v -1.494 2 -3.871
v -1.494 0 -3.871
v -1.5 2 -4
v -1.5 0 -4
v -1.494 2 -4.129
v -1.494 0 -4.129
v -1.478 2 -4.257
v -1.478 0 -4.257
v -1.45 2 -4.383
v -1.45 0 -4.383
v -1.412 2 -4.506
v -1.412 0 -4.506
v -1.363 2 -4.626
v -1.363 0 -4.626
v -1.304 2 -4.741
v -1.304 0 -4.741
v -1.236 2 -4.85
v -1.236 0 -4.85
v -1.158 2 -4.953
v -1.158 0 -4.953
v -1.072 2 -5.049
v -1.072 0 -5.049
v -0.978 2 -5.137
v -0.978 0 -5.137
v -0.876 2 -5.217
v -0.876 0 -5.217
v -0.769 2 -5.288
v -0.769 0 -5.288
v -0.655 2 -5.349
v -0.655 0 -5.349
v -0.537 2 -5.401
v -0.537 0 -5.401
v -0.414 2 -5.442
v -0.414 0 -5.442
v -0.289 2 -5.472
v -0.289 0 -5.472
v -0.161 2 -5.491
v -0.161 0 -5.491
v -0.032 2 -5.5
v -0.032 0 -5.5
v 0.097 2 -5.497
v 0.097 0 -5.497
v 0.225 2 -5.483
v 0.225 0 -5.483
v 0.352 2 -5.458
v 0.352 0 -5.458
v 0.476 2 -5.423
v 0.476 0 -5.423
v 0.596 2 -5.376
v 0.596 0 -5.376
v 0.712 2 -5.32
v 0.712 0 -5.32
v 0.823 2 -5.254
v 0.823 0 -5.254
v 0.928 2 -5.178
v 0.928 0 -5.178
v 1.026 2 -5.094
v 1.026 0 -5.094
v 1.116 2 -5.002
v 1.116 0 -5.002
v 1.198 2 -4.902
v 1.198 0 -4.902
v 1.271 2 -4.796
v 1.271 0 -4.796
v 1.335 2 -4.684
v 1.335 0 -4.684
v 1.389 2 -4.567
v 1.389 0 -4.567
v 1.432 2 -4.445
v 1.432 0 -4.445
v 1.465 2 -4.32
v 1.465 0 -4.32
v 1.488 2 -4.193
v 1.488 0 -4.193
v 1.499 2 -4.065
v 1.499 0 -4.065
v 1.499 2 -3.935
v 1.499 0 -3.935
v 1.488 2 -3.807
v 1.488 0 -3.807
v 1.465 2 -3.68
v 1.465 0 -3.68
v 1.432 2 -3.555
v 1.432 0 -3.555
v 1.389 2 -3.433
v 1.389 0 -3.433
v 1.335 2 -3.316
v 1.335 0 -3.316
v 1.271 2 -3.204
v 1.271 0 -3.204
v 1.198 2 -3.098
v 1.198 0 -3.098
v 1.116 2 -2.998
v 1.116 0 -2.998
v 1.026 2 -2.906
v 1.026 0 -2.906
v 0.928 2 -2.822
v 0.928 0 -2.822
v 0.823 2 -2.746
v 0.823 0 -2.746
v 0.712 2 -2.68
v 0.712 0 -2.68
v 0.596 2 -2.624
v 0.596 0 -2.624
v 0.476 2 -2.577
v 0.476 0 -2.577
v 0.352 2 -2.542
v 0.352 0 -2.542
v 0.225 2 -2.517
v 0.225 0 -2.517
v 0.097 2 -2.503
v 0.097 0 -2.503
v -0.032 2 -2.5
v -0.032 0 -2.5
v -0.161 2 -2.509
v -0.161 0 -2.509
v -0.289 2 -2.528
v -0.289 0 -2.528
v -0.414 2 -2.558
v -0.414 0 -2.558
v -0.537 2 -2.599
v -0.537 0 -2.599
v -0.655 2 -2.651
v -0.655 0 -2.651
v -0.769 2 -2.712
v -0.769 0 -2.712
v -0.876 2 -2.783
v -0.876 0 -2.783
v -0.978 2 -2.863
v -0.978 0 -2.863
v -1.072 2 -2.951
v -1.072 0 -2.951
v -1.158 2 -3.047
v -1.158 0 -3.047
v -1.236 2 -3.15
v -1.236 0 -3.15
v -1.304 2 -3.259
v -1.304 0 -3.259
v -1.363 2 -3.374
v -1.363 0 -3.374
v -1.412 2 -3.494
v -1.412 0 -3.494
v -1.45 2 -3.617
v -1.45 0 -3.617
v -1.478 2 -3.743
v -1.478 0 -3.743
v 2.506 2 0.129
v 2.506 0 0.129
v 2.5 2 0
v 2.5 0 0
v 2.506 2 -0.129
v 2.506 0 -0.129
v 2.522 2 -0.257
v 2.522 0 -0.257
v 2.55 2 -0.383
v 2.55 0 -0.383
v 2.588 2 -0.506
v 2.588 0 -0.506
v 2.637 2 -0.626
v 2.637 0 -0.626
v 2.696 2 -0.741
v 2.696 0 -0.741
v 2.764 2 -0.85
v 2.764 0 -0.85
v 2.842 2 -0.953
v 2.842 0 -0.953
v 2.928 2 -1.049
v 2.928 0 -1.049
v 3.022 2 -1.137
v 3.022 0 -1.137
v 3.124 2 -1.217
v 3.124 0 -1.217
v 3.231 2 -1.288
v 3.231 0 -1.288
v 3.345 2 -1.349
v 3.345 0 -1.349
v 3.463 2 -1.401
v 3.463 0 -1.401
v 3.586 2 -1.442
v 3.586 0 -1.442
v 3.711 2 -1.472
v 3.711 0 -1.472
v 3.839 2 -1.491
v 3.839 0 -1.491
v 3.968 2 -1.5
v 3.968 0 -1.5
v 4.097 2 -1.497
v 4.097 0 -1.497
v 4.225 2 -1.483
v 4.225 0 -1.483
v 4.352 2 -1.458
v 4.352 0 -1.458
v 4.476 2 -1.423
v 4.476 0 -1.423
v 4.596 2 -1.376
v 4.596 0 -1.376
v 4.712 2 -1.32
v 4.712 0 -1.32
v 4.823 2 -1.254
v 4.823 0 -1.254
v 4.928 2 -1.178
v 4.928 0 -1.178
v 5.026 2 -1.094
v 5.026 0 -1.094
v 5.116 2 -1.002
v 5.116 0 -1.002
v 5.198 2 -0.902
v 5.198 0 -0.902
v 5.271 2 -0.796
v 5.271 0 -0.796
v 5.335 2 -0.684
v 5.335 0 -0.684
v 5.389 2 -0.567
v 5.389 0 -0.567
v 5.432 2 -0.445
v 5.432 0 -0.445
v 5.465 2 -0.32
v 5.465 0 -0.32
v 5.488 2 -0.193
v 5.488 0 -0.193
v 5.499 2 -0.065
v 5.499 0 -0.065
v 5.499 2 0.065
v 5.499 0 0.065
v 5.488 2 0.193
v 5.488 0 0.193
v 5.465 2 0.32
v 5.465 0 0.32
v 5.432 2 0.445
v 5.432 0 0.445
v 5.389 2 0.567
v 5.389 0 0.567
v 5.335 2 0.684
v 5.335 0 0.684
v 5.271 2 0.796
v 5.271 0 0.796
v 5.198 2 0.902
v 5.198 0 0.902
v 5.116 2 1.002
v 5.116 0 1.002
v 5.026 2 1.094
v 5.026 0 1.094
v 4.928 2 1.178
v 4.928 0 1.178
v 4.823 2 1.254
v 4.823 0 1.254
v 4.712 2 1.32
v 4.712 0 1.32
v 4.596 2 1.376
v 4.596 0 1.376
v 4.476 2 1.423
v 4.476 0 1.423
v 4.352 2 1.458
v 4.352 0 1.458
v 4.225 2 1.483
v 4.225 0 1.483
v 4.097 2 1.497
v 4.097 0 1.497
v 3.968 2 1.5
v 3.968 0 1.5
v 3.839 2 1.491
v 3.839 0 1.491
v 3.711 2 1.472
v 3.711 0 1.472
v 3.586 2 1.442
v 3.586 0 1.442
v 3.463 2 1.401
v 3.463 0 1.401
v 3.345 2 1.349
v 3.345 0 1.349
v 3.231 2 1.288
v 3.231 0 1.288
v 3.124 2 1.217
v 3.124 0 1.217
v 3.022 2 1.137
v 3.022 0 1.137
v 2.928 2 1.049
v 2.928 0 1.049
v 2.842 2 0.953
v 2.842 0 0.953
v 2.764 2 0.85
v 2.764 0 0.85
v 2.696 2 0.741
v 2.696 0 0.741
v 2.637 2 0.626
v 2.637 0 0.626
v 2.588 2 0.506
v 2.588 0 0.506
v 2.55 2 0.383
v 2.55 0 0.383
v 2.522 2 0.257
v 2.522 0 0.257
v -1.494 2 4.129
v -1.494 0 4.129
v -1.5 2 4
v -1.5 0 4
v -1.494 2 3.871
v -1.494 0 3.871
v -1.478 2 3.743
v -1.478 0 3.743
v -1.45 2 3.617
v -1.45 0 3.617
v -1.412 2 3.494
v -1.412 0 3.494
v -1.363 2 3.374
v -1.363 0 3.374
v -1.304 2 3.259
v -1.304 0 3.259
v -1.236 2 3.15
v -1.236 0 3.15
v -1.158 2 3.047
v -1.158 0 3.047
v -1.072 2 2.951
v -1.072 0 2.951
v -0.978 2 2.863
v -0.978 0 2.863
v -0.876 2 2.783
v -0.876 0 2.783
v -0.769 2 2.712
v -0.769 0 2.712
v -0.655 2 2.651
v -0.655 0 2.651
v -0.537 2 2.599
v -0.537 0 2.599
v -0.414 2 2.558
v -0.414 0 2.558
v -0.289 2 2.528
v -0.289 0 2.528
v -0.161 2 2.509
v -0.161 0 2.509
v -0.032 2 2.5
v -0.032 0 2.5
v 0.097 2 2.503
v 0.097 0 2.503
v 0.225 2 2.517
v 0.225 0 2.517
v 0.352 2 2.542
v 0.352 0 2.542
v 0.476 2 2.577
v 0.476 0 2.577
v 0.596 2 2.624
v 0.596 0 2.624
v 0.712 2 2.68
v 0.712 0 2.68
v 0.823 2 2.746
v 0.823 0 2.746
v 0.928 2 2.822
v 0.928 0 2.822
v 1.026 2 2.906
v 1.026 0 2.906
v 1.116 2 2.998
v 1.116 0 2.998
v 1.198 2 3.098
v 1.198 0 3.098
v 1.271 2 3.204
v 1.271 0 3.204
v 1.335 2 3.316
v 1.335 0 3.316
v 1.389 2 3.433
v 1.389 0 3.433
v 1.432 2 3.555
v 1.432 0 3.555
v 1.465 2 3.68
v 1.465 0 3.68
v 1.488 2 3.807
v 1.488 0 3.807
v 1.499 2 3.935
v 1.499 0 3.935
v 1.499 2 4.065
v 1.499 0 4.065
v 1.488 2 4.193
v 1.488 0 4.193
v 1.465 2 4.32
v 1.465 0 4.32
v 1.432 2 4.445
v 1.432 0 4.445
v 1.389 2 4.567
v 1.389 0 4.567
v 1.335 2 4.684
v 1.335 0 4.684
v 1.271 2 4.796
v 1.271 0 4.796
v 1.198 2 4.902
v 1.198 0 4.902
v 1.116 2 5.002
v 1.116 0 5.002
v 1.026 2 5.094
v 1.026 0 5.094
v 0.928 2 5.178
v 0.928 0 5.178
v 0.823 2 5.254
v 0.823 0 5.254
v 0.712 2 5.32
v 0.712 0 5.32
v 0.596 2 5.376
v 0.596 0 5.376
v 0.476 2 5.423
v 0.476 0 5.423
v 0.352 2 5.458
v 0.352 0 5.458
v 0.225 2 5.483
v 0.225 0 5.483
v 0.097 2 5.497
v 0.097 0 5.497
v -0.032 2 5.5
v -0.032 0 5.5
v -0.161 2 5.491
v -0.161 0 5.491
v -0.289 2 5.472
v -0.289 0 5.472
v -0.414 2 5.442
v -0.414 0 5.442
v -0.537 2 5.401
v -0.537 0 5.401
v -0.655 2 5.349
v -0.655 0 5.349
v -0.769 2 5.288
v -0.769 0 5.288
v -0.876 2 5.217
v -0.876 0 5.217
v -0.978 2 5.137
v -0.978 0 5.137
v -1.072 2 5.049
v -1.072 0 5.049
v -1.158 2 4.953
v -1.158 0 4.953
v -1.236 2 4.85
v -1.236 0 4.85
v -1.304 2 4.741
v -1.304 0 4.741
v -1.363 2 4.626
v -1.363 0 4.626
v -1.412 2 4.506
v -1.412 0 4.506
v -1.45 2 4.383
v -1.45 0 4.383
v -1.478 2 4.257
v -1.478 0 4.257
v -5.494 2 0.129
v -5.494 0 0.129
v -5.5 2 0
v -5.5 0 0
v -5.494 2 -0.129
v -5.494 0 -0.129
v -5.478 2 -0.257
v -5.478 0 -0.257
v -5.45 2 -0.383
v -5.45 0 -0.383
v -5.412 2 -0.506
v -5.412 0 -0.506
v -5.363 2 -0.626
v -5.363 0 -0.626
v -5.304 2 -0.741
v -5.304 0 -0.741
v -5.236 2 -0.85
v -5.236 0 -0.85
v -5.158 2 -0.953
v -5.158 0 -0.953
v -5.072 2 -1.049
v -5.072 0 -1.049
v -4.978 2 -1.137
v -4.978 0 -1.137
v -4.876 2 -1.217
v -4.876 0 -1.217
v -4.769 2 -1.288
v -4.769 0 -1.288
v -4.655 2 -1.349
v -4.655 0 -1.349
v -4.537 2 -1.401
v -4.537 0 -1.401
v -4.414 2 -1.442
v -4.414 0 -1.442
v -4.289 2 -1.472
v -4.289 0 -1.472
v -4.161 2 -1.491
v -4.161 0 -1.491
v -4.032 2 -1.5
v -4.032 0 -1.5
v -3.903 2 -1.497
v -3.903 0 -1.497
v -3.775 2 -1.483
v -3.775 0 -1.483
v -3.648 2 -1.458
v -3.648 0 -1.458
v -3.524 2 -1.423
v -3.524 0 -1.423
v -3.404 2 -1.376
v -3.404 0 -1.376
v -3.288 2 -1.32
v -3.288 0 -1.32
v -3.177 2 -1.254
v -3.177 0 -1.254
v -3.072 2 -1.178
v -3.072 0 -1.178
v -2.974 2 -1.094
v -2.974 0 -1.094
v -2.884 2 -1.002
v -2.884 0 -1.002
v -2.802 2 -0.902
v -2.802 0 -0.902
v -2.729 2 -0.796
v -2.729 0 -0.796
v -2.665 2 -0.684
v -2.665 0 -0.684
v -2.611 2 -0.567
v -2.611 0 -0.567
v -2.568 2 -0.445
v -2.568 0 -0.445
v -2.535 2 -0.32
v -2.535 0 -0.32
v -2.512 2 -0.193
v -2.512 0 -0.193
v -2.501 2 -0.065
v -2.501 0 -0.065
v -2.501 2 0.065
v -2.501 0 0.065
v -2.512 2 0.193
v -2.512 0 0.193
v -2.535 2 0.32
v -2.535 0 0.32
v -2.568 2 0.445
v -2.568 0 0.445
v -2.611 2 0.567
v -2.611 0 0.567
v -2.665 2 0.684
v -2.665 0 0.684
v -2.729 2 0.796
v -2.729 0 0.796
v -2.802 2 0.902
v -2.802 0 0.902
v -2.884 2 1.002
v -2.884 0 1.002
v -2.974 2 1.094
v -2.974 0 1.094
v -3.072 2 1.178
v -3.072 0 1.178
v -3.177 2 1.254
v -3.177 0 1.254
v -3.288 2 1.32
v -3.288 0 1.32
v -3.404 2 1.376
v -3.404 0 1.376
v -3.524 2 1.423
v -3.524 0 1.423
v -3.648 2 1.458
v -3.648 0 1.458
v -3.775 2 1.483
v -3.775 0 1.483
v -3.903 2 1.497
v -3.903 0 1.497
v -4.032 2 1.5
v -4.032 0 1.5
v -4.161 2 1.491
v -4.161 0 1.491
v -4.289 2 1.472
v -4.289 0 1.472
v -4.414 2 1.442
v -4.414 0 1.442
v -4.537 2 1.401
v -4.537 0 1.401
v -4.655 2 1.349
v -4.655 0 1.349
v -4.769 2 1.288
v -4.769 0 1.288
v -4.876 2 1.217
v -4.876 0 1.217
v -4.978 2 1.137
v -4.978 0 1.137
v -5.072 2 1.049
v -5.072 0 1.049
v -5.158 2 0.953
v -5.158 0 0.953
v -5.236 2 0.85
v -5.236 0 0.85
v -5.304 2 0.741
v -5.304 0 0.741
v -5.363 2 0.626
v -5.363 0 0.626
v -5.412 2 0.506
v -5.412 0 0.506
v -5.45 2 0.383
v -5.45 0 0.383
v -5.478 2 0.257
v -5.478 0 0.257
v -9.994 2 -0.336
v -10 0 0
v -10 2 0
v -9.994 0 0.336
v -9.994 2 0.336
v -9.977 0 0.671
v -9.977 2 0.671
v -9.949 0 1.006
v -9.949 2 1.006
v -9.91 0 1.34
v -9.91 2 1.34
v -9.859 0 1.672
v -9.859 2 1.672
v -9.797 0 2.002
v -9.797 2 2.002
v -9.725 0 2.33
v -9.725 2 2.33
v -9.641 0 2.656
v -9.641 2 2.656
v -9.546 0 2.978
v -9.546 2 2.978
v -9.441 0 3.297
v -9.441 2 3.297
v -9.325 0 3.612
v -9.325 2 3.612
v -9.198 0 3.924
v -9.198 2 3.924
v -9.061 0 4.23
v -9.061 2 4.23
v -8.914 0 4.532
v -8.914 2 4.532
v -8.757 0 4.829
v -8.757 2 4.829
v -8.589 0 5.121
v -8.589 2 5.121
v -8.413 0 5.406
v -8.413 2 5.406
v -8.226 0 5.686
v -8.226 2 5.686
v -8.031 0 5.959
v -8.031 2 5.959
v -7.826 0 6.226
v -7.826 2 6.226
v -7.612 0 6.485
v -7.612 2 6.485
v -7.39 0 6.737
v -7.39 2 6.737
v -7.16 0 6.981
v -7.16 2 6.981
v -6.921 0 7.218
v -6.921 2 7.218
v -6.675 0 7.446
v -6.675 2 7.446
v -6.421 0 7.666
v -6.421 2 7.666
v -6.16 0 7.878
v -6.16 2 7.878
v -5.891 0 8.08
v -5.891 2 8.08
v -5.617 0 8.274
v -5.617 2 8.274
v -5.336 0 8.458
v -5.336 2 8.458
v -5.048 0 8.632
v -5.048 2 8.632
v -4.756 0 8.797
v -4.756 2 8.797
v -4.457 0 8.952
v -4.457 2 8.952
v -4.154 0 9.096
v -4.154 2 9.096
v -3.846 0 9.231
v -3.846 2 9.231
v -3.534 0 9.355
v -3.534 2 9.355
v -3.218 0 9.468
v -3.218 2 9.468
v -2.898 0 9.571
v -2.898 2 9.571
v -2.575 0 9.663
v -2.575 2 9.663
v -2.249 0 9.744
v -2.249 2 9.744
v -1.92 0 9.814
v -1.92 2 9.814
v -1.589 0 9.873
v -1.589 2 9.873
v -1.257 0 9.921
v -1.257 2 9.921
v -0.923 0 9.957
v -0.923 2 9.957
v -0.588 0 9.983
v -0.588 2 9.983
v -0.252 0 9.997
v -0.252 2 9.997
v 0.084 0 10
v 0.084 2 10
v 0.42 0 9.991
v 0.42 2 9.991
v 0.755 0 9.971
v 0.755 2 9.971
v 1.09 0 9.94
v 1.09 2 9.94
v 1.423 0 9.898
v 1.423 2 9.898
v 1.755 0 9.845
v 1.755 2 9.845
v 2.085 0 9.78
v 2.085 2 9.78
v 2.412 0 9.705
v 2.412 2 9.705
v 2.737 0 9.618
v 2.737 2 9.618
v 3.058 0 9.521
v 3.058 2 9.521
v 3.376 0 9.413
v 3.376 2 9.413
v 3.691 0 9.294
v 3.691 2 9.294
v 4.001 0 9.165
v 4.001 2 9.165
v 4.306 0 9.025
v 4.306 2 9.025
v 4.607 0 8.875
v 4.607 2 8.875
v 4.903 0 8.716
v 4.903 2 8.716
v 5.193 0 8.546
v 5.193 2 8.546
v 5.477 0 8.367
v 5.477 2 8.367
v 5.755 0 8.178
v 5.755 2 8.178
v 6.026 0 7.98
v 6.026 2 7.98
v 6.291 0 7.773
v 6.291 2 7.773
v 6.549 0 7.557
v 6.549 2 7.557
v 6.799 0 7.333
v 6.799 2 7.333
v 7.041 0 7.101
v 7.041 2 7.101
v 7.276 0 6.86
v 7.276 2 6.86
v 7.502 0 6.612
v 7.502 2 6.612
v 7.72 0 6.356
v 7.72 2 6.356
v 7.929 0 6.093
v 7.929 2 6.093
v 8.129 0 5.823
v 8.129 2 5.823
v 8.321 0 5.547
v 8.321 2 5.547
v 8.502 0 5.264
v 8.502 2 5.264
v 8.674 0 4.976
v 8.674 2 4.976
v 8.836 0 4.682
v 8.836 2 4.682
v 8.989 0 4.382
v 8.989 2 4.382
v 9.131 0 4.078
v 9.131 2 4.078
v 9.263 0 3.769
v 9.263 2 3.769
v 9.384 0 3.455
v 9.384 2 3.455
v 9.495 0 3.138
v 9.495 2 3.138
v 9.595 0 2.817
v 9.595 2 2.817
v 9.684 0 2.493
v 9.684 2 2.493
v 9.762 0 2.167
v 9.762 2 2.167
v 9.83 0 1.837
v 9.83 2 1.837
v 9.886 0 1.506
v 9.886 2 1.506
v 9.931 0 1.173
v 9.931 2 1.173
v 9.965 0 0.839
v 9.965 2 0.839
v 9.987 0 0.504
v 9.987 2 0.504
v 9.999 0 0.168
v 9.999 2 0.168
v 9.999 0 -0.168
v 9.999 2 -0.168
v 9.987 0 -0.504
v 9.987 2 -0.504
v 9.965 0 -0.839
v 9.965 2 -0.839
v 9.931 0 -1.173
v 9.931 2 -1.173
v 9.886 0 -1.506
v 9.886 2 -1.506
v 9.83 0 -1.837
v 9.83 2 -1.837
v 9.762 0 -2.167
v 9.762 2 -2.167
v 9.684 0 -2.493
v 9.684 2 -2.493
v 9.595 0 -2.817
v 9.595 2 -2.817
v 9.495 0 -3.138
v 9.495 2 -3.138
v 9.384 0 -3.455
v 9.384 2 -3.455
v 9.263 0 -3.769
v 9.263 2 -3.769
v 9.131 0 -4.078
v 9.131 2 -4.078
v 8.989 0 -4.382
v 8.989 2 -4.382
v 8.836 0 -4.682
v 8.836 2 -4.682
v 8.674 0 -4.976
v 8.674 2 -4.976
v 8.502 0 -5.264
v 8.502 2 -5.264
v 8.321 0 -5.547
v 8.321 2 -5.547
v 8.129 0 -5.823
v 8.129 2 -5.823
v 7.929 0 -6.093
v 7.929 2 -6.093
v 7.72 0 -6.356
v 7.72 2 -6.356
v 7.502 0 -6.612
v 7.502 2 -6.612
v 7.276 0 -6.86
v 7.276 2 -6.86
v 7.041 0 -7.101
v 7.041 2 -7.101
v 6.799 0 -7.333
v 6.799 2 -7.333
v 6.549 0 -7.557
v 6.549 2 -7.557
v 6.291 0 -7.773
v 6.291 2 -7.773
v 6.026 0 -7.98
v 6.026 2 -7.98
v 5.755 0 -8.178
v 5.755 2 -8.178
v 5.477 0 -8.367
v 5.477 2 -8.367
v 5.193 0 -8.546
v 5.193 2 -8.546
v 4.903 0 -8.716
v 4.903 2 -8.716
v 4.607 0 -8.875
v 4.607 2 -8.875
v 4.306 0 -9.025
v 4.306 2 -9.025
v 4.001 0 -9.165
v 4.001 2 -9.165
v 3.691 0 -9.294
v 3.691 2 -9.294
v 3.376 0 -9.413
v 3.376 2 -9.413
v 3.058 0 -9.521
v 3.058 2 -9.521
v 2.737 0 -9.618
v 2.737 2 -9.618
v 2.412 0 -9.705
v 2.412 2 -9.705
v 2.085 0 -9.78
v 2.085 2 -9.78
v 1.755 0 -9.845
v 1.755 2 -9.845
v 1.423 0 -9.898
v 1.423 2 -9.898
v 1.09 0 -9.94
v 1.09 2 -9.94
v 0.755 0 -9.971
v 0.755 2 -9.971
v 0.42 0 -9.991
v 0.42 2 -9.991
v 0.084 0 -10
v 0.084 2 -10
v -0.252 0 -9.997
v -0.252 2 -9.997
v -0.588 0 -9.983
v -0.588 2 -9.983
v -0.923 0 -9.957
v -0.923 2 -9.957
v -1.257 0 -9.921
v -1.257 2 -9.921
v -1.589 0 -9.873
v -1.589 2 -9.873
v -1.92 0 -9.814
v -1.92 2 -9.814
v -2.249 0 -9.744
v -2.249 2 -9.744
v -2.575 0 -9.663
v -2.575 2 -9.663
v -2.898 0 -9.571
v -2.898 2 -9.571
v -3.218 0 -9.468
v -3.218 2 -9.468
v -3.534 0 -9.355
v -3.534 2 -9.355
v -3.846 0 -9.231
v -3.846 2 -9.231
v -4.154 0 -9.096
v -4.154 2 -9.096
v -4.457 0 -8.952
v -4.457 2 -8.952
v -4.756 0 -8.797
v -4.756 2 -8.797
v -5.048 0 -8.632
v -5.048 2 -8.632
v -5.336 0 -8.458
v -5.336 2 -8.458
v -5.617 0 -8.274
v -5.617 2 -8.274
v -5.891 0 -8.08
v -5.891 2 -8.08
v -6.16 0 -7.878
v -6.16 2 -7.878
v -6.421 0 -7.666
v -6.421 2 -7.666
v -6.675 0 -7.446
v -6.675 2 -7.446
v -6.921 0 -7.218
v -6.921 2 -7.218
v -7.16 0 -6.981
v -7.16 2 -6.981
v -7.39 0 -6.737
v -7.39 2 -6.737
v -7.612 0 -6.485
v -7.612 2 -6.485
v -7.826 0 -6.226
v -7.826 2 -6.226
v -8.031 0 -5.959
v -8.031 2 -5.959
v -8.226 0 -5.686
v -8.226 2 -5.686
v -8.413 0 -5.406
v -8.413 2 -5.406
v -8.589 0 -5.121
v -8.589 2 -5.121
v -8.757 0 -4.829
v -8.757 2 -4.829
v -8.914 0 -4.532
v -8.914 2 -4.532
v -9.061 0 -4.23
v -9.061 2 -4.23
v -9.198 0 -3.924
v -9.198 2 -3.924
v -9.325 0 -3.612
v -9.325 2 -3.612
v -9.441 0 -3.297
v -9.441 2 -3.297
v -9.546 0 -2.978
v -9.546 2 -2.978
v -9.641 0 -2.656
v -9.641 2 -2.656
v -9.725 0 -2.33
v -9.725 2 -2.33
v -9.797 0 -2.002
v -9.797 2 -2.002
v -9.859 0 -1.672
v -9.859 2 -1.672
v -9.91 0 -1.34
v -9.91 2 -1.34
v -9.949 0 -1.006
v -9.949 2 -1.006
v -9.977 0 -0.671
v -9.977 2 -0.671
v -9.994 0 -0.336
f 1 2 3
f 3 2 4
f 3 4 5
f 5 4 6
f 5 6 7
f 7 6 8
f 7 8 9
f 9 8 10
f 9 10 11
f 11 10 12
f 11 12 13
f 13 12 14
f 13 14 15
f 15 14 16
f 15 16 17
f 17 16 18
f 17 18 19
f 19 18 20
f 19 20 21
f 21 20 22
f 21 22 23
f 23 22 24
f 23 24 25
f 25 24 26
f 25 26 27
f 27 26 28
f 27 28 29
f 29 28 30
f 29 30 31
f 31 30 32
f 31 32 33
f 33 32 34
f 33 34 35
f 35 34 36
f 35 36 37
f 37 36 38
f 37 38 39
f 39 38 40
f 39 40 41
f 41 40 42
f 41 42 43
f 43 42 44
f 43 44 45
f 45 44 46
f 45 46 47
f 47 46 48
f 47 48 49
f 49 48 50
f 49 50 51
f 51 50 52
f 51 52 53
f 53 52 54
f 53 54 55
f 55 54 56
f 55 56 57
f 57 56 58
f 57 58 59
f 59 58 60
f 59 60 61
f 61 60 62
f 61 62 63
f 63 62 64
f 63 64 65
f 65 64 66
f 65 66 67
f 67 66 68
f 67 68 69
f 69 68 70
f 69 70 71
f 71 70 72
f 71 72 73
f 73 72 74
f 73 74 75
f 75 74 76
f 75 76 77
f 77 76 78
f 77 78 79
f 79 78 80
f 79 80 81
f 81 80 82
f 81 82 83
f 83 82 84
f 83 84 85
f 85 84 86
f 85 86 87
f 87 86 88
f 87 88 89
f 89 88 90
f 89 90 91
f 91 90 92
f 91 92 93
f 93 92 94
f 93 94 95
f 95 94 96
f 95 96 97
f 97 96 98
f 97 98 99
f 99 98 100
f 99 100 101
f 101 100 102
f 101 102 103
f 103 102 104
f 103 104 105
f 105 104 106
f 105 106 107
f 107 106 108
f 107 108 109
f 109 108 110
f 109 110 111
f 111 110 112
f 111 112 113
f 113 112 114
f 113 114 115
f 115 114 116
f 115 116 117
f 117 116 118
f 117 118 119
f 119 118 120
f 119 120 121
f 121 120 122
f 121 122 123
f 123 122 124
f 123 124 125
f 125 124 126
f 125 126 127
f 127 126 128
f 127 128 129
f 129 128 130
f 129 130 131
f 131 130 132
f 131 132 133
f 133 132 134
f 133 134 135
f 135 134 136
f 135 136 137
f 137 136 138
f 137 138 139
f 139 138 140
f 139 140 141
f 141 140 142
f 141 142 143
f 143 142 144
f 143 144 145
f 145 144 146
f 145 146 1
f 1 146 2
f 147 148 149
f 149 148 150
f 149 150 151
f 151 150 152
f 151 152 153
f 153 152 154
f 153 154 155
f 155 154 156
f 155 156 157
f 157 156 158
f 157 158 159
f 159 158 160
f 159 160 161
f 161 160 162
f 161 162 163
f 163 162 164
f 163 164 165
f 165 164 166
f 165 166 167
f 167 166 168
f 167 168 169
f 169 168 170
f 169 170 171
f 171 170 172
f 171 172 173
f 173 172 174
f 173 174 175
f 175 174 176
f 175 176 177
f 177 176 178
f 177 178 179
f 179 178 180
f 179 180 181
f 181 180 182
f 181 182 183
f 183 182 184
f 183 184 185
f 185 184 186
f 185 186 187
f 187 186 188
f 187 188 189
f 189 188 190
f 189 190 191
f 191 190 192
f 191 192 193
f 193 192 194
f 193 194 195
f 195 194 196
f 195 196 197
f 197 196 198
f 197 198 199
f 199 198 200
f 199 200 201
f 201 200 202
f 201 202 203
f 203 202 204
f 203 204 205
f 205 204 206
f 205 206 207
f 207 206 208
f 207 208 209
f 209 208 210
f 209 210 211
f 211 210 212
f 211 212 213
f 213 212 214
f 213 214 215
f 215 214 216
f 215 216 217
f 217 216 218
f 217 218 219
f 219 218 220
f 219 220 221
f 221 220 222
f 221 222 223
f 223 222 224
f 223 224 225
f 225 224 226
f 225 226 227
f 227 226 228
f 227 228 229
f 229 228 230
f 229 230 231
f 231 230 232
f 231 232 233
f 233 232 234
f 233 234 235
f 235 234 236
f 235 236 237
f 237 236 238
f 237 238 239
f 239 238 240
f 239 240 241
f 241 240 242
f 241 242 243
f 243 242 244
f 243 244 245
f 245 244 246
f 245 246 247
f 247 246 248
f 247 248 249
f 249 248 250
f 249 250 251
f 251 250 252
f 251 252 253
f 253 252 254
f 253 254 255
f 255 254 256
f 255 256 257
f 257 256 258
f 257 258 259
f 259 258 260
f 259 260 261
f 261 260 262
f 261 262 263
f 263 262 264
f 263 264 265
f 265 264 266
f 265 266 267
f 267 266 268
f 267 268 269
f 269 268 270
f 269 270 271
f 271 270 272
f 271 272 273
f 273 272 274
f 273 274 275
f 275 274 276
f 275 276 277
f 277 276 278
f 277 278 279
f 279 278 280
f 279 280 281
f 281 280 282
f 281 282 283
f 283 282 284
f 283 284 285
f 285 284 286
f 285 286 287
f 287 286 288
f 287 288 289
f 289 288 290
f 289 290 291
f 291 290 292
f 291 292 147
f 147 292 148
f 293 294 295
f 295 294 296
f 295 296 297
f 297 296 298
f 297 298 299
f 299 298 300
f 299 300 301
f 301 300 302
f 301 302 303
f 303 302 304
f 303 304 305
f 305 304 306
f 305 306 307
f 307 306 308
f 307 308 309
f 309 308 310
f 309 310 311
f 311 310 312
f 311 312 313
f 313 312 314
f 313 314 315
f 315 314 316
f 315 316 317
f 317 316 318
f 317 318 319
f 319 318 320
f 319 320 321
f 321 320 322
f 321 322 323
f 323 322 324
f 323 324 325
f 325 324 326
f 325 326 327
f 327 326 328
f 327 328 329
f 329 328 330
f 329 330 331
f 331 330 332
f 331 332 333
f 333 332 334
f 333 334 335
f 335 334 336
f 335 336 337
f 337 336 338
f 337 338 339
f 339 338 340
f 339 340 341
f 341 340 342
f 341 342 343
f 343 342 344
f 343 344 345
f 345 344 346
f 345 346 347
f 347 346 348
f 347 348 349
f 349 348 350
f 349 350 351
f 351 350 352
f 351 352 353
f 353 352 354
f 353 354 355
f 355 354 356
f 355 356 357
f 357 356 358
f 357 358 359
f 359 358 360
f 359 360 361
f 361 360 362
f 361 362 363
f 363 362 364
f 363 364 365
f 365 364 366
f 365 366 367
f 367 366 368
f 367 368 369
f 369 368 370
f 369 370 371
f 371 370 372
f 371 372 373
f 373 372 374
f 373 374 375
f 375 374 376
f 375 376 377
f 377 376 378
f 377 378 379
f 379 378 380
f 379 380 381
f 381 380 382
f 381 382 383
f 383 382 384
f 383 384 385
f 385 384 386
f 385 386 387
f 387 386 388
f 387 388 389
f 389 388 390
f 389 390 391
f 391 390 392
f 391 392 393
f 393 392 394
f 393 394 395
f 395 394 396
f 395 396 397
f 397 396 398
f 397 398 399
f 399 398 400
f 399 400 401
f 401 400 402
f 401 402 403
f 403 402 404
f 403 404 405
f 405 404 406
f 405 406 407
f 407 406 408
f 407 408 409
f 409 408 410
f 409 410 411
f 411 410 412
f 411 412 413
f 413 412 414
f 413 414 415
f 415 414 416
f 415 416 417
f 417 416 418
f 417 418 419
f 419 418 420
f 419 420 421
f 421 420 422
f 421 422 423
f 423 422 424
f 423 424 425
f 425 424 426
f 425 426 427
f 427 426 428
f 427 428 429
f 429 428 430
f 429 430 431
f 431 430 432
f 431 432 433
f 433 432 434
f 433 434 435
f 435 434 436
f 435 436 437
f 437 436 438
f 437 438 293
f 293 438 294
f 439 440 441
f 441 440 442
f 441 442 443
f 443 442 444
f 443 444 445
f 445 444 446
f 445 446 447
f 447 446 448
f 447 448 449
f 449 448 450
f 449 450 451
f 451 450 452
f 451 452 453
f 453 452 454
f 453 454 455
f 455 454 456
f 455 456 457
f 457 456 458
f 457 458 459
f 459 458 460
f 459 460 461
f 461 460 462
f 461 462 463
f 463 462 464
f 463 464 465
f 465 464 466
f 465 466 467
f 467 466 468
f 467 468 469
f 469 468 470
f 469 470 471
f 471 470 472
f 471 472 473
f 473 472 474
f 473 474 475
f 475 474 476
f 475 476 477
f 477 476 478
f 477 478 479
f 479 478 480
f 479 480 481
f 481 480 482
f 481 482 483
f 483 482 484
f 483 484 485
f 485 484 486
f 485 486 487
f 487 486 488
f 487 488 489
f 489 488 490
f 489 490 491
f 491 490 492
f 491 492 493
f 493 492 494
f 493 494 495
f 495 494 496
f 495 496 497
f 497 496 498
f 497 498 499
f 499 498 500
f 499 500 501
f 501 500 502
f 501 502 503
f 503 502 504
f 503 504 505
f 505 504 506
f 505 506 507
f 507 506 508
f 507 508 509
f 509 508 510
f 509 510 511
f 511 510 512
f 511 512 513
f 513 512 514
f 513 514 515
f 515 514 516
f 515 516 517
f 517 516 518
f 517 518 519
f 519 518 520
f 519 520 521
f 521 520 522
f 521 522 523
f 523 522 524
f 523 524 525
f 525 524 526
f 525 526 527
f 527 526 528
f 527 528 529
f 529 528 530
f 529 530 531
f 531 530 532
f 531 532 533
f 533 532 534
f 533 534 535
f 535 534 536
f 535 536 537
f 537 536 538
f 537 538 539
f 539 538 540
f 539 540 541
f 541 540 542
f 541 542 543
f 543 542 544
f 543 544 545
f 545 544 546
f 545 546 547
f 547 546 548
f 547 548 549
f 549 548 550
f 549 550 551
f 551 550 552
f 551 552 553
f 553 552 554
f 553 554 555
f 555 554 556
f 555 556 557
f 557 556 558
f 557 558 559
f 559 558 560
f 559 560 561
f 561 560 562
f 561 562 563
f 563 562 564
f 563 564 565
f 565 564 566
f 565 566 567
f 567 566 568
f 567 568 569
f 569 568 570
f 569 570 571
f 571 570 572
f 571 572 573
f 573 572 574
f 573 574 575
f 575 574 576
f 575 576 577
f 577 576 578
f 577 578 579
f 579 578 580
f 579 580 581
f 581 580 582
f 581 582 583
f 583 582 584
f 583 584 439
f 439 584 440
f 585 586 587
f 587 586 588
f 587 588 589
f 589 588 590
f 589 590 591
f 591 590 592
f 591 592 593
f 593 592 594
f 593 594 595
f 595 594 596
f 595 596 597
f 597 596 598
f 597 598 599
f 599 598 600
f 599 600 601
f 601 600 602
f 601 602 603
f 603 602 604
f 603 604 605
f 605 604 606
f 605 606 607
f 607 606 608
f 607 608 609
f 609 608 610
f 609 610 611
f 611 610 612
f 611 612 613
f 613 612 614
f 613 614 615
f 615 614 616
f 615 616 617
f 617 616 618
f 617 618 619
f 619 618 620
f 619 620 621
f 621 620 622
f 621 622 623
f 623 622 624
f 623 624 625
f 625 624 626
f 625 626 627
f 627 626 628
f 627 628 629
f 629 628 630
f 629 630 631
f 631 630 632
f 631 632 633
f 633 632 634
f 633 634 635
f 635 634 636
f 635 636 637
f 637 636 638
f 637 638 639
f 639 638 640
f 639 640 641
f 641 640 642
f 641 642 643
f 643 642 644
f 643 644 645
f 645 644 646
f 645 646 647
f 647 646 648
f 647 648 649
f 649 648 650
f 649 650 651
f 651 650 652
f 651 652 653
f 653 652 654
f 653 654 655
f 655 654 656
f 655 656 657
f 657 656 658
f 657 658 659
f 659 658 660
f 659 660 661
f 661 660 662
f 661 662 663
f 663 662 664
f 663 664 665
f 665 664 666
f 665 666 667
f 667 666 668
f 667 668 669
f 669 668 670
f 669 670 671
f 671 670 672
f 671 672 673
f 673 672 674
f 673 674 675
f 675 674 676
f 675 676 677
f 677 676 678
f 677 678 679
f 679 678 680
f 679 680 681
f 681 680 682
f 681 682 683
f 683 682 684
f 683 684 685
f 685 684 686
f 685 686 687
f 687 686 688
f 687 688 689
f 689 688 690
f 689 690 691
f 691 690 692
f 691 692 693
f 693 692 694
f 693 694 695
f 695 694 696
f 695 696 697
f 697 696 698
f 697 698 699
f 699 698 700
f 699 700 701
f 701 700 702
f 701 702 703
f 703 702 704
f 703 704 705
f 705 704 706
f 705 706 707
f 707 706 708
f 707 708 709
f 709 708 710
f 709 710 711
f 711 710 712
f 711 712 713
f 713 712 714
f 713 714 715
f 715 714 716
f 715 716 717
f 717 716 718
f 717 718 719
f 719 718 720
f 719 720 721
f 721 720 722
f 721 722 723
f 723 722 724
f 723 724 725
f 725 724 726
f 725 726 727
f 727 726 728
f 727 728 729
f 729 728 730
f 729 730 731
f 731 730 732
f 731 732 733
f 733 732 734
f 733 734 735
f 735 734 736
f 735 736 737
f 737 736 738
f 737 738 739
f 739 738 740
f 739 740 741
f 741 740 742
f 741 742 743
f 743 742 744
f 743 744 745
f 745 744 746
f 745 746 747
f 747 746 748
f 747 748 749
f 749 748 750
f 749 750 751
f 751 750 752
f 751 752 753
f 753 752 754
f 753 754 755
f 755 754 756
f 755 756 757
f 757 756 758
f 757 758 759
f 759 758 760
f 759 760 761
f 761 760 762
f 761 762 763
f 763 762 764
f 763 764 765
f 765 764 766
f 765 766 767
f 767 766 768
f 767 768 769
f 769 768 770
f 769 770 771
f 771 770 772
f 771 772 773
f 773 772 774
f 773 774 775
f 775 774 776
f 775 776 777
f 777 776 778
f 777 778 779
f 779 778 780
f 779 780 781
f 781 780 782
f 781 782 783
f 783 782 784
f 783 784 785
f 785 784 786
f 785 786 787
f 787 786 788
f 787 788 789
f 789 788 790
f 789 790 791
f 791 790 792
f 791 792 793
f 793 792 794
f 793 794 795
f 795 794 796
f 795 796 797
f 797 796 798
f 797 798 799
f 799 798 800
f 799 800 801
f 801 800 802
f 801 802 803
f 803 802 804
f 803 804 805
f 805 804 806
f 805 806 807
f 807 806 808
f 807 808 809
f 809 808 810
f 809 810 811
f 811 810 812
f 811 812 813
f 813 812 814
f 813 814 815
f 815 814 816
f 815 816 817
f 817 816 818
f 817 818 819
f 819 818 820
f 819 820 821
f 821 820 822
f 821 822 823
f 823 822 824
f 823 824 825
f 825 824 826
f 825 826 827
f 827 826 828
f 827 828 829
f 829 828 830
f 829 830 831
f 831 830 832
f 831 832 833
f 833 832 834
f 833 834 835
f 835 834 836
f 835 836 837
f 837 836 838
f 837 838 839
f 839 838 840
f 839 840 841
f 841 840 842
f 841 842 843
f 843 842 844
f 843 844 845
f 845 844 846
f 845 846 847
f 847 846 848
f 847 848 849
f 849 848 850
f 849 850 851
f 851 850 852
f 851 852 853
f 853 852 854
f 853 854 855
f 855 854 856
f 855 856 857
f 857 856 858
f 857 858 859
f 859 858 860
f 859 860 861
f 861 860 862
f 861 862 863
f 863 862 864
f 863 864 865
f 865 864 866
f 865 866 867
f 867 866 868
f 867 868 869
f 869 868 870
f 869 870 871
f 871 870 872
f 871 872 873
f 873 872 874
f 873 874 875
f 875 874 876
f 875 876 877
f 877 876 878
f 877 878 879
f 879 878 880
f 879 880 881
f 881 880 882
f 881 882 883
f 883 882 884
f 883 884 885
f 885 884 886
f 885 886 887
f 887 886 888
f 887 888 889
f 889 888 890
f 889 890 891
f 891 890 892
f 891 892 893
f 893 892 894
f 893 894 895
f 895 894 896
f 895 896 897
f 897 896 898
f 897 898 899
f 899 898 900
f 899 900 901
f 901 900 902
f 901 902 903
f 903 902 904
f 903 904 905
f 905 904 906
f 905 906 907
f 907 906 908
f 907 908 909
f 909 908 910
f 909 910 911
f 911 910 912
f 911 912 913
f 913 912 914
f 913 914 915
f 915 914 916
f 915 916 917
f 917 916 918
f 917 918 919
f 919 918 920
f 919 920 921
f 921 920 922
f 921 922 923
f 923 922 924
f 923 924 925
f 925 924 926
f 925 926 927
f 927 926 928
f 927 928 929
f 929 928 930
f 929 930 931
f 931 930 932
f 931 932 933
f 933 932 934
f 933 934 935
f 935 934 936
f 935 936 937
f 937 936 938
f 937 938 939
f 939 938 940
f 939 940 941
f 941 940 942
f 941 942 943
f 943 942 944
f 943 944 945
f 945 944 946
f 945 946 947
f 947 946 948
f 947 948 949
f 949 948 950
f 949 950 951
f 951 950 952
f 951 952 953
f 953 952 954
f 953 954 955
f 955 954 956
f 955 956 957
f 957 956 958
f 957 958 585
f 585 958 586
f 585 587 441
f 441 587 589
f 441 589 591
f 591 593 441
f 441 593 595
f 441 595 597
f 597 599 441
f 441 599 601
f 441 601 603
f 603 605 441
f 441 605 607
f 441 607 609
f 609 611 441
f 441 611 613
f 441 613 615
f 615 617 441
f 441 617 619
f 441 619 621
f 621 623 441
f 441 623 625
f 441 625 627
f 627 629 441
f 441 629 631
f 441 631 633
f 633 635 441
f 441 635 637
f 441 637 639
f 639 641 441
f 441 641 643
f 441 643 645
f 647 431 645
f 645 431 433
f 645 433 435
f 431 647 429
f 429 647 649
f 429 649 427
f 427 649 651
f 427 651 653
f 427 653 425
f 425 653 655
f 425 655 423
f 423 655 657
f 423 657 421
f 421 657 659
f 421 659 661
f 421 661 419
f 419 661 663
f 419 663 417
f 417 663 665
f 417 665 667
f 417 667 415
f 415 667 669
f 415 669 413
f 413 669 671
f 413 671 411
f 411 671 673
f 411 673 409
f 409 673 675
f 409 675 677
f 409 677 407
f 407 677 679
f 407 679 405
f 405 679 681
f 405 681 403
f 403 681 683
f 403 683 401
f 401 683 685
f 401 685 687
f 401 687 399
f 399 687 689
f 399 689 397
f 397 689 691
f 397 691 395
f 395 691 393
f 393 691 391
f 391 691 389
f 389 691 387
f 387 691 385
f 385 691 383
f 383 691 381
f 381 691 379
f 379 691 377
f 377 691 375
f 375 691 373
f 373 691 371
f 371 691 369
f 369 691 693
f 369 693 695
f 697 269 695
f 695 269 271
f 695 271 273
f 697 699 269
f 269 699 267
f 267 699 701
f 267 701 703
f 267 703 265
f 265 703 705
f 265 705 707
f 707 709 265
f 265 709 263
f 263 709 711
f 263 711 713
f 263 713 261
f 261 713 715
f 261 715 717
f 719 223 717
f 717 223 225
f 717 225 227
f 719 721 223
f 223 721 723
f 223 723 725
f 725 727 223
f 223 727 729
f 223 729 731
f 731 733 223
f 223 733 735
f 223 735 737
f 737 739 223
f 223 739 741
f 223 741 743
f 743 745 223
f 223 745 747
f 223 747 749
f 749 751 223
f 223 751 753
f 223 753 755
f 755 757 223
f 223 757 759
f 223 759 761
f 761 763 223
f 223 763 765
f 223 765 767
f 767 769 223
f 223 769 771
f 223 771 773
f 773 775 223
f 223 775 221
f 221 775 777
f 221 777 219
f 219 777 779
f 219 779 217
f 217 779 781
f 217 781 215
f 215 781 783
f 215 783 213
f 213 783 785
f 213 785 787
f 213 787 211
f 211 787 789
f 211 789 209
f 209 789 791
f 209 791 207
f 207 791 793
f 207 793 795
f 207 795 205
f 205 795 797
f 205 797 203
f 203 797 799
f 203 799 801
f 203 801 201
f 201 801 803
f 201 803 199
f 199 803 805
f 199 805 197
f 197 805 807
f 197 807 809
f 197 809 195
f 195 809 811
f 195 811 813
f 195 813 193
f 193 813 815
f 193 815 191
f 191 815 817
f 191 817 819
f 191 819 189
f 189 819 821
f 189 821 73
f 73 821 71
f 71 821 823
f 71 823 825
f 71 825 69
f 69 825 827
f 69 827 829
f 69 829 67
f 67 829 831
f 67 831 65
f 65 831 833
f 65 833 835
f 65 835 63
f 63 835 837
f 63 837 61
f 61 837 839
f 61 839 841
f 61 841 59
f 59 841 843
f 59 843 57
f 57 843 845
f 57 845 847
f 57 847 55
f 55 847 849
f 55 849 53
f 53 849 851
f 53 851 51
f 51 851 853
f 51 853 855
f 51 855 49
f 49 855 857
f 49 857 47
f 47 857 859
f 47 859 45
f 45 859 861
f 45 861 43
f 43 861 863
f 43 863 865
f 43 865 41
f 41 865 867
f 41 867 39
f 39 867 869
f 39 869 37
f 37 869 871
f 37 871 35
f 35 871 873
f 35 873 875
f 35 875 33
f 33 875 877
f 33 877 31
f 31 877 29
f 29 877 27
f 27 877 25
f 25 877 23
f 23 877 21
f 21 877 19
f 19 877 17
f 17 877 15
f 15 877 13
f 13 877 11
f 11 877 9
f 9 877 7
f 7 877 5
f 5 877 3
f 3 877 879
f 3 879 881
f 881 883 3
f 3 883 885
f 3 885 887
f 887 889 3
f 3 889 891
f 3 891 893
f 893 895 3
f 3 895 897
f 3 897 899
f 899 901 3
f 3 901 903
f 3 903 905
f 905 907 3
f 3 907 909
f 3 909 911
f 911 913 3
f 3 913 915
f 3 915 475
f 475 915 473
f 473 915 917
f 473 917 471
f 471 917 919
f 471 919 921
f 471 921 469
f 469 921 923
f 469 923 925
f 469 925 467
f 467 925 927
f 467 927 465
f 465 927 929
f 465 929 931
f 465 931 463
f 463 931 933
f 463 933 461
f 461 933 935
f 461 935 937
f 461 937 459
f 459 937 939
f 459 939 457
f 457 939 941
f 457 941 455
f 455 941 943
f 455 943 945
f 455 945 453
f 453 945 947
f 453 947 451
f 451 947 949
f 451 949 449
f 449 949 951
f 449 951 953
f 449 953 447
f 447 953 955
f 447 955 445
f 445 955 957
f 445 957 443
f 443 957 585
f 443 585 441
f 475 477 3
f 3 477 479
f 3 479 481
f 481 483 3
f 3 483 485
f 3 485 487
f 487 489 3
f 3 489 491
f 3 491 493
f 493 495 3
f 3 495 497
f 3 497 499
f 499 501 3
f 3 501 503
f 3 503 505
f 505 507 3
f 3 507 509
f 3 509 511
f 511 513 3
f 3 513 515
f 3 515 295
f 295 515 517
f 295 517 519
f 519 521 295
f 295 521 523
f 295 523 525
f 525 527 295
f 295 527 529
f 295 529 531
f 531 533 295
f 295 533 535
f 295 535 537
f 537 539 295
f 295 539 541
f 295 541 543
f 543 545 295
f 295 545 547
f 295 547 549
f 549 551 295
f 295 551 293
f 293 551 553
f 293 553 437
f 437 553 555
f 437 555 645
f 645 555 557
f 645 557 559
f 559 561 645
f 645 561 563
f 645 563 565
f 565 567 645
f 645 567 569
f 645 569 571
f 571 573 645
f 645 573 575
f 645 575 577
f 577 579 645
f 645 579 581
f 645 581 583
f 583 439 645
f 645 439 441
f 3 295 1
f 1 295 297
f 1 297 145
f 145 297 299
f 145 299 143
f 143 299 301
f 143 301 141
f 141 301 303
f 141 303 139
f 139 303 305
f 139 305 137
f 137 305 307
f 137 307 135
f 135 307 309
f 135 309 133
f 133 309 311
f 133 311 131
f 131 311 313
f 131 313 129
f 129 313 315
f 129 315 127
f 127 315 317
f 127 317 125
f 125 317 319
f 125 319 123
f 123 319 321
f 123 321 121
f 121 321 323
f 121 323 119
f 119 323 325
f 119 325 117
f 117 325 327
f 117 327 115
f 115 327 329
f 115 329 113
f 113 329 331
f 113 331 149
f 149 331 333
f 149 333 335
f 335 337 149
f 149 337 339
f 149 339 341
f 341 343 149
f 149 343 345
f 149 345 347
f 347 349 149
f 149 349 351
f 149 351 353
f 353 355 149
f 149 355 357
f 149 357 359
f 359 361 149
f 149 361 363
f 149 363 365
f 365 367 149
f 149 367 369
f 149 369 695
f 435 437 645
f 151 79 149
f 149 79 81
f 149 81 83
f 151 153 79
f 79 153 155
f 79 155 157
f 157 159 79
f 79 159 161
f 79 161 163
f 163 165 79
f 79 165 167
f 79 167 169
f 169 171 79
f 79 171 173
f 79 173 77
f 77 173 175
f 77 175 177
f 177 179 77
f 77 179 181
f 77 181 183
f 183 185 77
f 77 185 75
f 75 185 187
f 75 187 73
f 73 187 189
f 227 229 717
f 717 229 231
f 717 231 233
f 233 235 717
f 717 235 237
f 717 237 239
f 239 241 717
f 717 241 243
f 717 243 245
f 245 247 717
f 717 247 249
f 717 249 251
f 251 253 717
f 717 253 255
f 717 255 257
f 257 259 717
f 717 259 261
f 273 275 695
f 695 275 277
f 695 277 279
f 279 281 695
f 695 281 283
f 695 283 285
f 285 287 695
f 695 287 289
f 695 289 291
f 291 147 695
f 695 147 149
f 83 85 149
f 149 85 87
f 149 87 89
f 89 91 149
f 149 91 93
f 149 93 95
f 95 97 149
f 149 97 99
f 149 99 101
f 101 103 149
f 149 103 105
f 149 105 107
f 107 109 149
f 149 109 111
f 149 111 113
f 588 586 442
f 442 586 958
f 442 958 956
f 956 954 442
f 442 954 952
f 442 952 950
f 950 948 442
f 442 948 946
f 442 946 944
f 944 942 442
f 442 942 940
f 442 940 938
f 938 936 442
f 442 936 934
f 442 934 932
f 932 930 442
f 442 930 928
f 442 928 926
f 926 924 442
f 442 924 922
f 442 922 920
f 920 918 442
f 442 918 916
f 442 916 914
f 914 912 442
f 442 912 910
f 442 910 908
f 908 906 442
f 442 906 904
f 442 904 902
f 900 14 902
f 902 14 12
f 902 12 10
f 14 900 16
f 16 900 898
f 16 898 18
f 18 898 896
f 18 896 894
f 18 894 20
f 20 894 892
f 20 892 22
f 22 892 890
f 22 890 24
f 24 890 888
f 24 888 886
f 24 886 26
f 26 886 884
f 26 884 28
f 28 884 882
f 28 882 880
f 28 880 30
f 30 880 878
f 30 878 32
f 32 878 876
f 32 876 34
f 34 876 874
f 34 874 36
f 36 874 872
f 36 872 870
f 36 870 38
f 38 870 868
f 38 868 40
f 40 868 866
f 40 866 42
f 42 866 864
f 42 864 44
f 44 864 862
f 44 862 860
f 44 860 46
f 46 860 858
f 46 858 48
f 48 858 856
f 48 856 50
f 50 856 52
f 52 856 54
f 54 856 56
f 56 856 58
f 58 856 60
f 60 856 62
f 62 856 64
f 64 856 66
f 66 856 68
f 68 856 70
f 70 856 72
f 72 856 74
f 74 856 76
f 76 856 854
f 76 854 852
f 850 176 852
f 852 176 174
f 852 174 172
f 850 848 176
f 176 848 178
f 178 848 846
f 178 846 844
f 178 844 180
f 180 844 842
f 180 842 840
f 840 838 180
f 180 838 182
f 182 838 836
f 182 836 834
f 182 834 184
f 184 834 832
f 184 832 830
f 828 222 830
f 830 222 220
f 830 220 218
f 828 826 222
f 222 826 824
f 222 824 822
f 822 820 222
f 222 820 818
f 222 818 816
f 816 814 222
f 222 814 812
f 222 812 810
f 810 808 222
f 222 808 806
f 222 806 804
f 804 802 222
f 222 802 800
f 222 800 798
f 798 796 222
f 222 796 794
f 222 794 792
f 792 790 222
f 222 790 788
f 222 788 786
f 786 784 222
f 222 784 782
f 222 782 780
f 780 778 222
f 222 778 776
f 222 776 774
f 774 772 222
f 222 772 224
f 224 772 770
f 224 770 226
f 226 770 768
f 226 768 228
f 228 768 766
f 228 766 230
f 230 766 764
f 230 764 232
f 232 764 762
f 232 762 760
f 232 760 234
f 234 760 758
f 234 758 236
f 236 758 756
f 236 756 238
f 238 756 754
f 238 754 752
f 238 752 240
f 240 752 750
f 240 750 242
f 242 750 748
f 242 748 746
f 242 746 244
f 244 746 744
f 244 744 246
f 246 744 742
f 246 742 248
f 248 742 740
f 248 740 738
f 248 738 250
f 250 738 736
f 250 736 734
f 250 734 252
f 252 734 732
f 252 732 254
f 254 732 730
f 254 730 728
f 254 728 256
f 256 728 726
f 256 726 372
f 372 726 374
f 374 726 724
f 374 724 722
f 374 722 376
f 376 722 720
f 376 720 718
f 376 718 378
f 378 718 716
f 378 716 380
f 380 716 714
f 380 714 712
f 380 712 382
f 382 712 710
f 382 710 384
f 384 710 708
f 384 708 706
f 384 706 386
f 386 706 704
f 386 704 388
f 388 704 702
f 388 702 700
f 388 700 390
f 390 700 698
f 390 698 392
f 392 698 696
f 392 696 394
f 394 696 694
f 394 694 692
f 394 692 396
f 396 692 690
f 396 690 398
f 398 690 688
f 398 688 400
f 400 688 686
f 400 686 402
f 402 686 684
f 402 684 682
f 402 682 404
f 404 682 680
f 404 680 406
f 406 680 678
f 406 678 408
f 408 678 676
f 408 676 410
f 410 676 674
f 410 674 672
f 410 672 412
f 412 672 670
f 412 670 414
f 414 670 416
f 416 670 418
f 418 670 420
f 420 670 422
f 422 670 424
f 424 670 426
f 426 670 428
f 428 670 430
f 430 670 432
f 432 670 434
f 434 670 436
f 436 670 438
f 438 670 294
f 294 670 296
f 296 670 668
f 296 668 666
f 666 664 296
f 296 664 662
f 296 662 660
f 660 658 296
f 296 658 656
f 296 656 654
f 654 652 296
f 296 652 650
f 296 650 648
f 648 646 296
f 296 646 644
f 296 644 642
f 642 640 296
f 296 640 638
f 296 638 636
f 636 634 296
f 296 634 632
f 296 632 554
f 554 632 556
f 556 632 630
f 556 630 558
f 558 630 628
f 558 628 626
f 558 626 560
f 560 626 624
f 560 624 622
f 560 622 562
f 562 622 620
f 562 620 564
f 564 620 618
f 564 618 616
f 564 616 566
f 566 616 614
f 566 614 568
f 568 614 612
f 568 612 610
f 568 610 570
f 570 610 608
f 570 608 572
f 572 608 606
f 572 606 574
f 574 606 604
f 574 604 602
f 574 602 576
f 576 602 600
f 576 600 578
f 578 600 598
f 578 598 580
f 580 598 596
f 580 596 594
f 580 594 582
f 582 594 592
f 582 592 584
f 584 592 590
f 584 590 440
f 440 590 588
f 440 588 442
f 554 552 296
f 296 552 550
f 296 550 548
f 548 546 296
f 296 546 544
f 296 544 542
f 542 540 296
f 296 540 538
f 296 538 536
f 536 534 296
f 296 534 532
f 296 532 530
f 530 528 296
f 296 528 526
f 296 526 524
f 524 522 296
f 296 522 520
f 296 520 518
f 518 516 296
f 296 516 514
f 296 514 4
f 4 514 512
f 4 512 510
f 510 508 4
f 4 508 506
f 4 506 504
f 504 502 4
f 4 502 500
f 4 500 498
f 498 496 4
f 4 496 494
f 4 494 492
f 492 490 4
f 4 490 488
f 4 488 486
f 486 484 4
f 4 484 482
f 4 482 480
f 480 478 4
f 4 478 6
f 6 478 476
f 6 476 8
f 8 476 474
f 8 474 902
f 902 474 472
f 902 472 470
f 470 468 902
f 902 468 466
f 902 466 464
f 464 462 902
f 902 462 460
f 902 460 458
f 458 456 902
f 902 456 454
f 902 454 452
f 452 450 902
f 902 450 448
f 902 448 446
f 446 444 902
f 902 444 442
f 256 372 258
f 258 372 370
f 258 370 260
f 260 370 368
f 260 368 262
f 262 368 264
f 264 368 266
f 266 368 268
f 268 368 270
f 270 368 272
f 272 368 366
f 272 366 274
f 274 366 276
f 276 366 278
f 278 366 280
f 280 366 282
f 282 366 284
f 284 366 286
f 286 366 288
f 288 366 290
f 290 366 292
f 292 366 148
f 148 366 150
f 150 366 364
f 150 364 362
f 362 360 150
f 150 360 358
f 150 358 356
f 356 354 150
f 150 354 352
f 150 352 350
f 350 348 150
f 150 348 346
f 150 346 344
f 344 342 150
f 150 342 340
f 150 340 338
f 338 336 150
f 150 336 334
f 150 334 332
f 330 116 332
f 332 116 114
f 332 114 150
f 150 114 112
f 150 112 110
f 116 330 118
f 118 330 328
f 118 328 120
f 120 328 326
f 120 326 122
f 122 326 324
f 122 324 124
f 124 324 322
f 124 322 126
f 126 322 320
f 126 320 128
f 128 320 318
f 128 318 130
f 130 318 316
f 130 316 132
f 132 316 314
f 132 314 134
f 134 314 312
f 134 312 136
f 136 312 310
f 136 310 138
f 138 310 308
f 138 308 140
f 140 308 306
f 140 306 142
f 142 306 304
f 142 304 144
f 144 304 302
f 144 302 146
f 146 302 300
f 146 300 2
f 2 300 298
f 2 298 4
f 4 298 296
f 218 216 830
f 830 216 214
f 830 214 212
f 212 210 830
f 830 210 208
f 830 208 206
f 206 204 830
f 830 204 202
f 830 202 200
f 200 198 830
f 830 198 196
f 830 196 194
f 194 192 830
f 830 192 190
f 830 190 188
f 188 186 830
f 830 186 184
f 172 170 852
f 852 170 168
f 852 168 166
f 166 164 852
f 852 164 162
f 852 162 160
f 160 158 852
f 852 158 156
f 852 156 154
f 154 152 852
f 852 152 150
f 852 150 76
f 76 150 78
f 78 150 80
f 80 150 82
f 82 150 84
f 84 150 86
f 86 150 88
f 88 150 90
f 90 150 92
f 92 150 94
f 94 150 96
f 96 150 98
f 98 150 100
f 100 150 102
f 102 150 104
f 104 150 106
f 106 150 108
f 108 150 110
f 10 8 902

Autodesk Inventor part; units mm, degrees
ref_plane "YZ Plane" through (0, 0, 0) normal (1, 0, 0) x (0, 1, 0)
ref_plane "XZ Plane" through (0, 0, 0) normal (0, 1, 0) x (-1, 0, 0)
ref_plane "XY Plane" through (0, 0, 0) normal (0, 0, 1) x (1, 0, 0)
sketch "Sketch1" plane through (0, 0, 0) normal (0, 1, 0) x (-1, 0, 0)
  circle A0 centre (0, 0) radius 10
  circle A1 centre (4, 0) radius 1.5
  circle A2 centre (0, 4) radius 1.5
  circle A3 centre (-4, 0) radius 1.5
  circle A4 centre (0, -4) radius 1.5
  dimension "d0" = 20
  dimension "d2" = 3
  dimension "d5" = 360
extrude "Extrusion1" add sketch "Sketch1" along normal blind 2
properties part number "spacer"
